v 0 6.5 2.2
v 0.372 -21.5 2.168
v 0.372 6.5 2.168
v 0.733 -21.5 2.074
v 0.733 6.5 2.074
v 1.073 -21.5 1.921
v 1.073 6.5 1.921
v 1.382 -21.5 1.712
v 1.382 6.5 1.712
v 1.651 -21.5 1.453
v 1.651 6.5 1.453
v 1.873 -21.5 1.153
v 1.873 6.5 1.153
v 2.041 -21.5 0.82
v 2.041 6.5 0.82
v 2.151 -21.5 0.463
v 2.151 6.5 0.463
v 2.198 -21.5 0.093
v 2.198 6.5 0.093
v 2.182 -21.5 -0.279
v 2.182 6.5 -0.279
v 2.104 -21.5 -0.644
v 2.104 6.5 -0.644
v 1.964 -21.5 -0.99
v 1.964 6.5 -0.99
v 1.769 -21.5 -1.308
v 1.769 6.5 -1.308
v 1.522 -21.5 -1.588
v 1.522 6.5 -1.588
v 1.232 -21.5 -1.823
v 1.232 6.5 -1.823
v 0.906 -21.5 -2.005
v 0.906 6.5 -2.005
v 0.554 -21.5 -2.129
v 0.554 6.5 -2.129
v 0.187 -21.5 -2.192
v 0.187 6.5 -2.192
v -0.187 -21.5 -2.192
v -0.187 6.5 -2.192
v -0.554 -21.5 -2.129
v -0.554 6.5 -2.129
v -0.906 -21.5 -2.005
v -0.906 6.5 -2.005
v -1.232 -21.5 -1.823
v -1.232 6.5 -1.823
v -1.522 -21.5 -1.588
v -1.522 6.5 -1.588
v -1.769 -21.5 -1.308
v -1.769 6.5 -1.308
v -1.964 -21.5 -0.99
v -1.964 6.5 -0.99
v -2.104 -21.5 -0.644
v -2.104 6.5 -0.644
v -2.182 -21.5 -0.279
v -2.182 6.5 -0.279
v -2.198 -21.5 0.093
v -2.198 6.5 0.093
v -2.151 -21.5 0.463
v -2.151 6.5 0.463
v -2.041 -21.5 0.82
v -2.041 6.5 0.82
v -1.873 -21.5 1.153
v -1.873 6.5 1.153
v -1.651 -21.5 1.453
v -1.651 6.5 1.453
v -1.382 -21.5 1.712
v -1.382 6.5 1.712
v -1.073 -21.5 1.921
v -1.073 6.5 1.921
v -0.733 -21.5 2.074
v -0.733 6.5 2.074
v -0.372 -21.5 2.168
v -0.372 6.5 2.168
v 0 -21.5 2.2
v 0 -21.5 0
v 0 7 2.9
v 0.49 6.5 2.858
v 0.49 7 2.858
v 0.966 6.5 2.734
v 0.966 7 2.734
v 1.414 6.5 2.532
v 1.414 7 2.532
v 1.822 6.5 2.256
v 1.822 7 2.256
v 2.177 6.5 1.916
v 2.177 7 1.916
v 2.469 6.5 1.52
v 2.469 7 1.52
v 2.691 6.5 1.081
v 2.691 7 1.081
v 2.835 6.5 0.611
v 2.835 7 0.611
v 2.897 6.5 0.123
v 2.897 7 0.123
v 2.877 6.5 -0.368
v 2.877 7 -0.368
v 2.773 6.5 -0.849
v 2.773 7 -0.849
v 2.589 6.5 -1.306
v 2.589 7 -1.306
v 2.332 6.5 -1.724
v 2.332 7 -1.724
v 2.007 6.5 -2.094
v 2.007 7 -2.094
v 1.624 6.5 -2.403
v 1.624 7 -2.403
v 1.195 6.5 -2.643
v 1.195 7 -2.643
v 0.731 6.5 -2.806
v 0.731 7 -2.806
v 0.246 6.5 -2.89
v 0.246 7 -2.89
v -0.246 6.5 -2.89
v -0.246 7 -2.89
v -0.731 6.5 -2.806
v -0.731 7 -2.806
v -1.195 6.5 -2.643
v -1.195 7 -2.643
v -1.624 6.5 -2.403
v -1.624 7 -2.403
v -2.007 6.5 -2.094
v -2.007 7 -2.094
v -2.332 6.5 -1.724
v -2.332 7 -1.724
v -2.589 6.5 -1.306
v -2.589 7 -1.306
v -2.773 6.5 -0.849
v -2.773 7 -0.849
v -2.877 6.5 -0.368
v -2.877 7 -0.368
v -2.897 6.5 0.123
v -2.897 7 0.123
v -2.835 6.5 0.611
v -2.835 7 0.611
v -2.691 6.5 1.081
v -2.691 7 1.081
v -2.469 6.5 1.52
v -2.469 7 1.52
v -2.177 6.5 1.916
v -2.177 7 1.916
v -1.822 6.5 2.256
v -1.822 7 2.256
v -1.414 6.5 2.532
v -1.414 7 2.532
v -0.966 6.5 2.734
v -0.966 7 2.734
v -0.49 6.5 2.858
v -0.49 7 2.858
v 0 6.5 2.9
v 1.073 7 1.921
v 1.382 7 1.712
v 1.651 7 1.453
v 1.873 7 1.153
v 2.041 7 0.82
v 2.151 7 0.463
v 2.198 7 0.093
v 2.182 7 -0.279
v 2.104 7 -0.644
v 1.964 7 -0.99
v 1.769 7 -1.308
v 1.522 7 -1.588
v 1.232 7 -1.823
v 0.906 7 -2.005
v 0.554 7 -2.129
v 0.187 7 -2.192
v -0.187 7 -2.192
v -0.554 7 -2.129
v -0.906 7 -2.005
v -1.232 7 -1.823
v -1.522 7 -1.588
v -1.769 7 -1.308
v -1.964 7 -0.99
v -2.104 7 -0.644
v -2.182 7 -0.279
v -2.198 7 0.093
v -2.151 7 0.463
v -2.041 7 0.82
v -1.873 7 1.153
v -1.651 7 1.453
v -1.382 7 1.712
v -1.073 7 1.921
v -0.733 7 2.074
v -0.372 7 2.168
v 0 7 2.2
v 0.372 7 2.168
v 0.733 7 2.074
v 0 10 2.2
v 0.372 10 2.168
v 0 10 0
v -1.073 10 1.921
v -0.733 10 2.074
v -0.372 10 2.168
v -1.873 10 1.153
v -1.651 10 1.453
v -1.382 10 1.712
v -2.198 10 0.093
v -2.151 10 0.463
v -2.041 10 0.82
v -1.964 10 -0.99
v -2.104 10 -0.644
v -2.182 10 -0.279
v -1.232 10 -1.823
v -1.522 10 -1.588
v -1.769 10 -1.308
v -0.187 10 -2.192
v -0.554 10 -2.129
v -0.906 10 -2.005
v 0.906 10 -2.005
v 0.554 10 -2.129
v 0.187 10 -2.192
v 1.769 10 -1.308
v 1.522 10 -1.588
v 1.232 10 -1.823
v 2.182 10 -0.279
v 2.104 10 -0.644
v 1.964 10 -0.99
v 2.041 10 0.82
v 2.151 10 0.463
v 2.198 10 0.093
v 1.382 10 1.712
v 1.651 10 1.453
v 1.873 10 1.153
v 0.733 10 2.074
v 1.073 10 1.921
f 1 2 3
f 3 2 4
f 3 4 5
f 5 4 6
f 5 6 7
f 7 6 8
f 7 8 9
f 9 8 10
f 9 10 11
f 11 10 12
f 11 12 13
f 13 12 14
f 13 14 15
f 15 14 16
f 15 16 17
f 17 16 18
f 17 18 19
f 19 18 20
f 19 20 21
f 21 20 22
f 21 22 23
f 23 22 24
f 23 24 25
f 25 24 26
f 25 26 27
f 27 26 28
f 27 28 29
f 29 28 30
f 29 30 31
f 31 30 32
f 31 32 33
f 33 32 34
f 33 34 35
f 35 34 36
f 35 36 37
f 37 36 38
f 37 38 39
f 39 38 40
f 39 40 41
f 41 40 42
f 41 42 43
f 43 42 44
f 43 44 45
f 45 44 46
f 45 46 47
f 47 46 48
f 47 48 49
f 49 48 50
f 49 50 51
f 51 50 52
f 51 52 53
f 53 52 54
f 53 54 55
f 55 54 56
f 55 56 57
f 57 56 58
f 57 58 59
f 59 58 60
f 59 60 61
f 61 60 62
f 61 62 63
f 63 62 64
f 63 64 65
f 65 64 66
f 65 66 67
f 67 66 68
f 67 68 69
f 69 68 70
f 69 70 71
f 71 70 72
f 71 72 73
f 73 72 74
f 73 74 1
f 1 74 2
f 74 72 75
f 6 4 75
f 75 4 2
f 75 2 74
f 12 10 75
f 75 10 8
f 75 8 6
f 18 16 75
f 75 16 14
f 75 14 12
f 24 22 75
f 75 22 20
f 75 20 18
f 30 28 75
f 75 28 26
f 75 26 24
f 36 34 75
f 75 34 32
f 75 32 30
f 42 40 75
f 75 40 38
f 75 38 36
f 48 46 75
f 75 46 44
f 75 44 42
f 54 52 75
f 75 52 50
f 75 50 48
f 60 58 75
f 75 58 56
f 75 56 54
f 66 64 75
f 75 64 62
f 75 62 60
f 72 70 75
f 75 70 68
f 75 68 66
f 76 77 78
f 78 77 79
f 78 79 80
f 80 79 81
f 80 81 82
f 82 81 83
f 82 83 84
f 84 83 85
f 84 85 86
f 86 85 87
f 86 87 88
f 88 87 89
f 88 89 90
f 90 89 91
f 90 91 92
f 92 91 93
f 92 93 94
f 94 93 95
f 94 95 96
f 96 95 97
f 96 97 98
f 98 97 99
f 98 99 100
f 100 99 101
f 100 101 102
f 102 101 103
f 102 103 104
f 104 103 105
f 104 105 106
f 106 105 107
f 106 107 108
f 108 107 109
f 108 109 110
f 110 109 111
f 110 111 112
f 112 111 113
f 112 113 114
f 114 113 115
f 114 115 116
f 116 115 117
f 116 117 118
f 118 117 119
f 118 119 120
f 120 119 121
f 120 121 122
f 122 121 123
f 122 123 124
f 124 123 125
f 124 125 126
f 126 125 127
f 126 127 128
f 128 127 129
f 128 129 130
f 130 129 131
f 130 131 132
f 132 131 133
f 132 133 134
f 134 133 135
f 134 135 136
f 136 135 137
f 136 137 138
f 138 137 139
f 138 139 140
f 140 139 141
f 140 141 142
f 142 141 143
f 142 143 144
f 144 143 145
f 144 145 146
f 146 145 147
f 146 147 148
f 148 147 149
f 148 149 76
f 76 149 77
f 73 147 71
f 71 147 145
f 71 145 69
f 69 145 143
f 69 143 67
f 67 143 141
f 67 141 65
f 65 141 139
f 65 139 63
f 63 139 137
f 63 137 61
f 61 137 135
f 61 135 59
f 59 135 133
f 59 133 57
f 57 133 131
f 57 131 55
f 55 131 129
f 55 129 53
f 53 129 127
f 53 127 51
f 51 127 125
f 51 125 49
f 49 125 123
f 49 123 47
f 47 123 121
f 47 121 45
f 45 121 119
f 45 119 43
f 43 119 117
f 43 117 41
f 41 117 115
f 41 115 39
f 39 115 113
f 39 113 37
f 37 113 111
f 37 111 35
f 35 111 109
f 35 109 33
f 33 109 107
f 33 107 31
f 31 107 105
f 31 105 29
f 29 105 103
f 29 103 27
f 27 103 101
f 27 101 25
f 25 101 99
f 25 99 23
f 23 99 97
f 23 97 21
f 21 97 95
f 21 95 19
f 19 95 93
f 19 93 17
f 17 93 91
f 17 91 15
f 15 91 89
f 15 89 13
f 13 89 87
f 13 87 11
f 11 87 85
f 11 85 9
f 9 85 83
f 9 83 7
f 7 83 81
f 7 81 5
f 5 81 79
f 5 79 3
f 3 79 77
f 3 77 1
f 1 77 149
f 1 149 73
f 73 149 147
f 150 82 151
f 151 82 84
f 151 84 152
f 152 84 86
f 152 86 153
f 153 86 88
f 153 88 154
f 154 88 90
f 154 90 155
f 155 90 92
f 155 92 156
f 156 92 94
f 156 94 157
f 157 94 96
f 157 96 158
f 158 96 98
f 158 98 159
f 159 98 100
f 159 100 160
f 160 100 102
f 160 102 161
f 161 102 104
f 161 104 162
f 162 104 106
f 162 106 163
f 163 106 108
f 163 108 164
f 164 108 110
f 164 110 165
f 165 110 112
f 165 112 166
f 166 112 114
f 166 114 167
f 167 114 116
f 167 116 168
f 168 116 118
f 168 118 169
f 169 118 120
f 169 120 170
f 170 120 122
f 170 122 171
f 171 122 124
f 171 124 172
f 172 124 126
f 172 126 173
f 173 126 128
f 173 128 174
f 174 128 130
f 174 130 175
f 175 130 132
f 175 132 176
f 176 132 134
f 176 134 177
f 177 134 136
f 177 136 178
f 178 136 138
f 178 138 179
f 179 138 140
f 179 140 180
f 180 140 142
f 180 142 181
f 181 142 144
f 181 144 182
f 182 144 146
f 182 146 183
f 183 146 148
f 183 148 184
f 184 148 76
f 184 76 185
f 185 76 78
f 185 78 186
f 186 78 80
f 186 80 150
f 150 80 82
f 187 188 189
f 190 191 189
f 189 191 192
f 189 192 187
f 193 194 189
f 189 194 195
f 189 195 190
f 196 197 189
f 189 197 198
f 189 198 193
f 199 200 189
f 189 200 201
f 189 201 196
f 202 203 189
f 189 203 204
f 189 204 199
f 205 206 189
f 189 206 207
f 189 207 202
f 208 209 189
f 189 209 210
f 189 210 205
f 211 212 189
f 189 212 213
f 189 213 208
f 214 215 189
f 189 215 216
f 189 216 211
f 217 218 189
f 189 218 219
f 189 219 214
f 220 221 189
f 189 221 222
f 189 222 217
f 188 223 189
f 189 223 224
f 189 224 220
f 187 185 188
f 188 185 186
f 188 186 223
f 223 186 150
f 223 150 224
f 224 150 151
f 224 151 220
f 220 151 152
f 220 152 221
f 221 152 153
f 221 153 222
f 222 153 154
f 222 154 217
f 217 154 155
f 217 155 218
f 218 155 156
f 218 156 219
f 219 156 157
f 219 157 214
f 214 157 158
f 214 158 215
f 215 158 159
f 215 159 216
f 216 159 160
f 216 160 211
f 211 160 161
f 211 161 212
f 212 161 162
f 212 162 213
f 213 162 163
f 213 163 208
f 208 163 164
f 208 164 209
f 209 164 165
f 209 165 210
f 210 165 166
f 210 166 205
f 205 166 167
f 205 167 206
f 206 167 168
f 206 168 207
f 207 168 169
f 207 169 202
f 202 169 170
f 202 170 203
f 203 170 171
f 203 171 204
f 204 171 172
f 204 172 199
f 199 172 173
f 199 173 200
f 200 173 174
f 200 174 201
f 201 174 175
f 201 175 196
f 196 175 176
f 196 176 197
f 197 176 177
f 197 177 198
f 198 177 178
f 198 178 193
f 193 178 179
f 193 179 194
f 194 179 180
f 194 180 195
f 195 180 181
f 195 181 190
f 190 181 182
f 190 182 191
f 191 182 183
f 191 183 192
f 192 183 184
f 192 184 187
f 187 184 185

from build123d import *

# Parameters (mm, degrees)
BOSS_EXTRUDE1_DEPTH      = 10
BOSS_EXTRUDE1_DEPTH_BACK = 21.5
SKETCH1_R                = 2.2
SKETCH2_R                = 2.9
SKETCH2_R_2              = 2.2
BOSS_EXTRUDE2_DEPTH      = 0.5


with BuildPart() as part:
    # Sketch1 → Boss-Extrude1 (new, two sides: drawn at the far end of the back side and taken through both)
    with BuildSketch(Plane(origin=(0, 0, 0), x_dir=(1, 0, 0), z_dir=(0, 1, 0)).offset(-BOSS_EXTRUDE1_DEPTH_BACK)):
        with Locations(Location((0, 0, 0), (0, 0, 270))):
            Circle(SKETCH1_R)
    extrude(amount=BOSS_EXTRUDE1_DEPTH + BOSS_EXTRUDE1_DEPTH_BACK)

    # Sketch2 → Boss-Extrude2 (add)
    with BuildSketch(Plane(origin=(0, 7, 0), x_dir=(1, 0, 0), z_dir=(0, 1, 0))):
        with Locations(Location((0, 0, 0), (0, 0, 270))):
            Circle(SKETCH2_R)
        with Locations(Location((0, 0, 0), (0, 0, 270))):
            Circle(SKETCH2_R_2, mode=Mode.SUBTRACT)
    extrude(amount=-BOSS_EXTRUDE2_DEPTH)


solid = part.part
